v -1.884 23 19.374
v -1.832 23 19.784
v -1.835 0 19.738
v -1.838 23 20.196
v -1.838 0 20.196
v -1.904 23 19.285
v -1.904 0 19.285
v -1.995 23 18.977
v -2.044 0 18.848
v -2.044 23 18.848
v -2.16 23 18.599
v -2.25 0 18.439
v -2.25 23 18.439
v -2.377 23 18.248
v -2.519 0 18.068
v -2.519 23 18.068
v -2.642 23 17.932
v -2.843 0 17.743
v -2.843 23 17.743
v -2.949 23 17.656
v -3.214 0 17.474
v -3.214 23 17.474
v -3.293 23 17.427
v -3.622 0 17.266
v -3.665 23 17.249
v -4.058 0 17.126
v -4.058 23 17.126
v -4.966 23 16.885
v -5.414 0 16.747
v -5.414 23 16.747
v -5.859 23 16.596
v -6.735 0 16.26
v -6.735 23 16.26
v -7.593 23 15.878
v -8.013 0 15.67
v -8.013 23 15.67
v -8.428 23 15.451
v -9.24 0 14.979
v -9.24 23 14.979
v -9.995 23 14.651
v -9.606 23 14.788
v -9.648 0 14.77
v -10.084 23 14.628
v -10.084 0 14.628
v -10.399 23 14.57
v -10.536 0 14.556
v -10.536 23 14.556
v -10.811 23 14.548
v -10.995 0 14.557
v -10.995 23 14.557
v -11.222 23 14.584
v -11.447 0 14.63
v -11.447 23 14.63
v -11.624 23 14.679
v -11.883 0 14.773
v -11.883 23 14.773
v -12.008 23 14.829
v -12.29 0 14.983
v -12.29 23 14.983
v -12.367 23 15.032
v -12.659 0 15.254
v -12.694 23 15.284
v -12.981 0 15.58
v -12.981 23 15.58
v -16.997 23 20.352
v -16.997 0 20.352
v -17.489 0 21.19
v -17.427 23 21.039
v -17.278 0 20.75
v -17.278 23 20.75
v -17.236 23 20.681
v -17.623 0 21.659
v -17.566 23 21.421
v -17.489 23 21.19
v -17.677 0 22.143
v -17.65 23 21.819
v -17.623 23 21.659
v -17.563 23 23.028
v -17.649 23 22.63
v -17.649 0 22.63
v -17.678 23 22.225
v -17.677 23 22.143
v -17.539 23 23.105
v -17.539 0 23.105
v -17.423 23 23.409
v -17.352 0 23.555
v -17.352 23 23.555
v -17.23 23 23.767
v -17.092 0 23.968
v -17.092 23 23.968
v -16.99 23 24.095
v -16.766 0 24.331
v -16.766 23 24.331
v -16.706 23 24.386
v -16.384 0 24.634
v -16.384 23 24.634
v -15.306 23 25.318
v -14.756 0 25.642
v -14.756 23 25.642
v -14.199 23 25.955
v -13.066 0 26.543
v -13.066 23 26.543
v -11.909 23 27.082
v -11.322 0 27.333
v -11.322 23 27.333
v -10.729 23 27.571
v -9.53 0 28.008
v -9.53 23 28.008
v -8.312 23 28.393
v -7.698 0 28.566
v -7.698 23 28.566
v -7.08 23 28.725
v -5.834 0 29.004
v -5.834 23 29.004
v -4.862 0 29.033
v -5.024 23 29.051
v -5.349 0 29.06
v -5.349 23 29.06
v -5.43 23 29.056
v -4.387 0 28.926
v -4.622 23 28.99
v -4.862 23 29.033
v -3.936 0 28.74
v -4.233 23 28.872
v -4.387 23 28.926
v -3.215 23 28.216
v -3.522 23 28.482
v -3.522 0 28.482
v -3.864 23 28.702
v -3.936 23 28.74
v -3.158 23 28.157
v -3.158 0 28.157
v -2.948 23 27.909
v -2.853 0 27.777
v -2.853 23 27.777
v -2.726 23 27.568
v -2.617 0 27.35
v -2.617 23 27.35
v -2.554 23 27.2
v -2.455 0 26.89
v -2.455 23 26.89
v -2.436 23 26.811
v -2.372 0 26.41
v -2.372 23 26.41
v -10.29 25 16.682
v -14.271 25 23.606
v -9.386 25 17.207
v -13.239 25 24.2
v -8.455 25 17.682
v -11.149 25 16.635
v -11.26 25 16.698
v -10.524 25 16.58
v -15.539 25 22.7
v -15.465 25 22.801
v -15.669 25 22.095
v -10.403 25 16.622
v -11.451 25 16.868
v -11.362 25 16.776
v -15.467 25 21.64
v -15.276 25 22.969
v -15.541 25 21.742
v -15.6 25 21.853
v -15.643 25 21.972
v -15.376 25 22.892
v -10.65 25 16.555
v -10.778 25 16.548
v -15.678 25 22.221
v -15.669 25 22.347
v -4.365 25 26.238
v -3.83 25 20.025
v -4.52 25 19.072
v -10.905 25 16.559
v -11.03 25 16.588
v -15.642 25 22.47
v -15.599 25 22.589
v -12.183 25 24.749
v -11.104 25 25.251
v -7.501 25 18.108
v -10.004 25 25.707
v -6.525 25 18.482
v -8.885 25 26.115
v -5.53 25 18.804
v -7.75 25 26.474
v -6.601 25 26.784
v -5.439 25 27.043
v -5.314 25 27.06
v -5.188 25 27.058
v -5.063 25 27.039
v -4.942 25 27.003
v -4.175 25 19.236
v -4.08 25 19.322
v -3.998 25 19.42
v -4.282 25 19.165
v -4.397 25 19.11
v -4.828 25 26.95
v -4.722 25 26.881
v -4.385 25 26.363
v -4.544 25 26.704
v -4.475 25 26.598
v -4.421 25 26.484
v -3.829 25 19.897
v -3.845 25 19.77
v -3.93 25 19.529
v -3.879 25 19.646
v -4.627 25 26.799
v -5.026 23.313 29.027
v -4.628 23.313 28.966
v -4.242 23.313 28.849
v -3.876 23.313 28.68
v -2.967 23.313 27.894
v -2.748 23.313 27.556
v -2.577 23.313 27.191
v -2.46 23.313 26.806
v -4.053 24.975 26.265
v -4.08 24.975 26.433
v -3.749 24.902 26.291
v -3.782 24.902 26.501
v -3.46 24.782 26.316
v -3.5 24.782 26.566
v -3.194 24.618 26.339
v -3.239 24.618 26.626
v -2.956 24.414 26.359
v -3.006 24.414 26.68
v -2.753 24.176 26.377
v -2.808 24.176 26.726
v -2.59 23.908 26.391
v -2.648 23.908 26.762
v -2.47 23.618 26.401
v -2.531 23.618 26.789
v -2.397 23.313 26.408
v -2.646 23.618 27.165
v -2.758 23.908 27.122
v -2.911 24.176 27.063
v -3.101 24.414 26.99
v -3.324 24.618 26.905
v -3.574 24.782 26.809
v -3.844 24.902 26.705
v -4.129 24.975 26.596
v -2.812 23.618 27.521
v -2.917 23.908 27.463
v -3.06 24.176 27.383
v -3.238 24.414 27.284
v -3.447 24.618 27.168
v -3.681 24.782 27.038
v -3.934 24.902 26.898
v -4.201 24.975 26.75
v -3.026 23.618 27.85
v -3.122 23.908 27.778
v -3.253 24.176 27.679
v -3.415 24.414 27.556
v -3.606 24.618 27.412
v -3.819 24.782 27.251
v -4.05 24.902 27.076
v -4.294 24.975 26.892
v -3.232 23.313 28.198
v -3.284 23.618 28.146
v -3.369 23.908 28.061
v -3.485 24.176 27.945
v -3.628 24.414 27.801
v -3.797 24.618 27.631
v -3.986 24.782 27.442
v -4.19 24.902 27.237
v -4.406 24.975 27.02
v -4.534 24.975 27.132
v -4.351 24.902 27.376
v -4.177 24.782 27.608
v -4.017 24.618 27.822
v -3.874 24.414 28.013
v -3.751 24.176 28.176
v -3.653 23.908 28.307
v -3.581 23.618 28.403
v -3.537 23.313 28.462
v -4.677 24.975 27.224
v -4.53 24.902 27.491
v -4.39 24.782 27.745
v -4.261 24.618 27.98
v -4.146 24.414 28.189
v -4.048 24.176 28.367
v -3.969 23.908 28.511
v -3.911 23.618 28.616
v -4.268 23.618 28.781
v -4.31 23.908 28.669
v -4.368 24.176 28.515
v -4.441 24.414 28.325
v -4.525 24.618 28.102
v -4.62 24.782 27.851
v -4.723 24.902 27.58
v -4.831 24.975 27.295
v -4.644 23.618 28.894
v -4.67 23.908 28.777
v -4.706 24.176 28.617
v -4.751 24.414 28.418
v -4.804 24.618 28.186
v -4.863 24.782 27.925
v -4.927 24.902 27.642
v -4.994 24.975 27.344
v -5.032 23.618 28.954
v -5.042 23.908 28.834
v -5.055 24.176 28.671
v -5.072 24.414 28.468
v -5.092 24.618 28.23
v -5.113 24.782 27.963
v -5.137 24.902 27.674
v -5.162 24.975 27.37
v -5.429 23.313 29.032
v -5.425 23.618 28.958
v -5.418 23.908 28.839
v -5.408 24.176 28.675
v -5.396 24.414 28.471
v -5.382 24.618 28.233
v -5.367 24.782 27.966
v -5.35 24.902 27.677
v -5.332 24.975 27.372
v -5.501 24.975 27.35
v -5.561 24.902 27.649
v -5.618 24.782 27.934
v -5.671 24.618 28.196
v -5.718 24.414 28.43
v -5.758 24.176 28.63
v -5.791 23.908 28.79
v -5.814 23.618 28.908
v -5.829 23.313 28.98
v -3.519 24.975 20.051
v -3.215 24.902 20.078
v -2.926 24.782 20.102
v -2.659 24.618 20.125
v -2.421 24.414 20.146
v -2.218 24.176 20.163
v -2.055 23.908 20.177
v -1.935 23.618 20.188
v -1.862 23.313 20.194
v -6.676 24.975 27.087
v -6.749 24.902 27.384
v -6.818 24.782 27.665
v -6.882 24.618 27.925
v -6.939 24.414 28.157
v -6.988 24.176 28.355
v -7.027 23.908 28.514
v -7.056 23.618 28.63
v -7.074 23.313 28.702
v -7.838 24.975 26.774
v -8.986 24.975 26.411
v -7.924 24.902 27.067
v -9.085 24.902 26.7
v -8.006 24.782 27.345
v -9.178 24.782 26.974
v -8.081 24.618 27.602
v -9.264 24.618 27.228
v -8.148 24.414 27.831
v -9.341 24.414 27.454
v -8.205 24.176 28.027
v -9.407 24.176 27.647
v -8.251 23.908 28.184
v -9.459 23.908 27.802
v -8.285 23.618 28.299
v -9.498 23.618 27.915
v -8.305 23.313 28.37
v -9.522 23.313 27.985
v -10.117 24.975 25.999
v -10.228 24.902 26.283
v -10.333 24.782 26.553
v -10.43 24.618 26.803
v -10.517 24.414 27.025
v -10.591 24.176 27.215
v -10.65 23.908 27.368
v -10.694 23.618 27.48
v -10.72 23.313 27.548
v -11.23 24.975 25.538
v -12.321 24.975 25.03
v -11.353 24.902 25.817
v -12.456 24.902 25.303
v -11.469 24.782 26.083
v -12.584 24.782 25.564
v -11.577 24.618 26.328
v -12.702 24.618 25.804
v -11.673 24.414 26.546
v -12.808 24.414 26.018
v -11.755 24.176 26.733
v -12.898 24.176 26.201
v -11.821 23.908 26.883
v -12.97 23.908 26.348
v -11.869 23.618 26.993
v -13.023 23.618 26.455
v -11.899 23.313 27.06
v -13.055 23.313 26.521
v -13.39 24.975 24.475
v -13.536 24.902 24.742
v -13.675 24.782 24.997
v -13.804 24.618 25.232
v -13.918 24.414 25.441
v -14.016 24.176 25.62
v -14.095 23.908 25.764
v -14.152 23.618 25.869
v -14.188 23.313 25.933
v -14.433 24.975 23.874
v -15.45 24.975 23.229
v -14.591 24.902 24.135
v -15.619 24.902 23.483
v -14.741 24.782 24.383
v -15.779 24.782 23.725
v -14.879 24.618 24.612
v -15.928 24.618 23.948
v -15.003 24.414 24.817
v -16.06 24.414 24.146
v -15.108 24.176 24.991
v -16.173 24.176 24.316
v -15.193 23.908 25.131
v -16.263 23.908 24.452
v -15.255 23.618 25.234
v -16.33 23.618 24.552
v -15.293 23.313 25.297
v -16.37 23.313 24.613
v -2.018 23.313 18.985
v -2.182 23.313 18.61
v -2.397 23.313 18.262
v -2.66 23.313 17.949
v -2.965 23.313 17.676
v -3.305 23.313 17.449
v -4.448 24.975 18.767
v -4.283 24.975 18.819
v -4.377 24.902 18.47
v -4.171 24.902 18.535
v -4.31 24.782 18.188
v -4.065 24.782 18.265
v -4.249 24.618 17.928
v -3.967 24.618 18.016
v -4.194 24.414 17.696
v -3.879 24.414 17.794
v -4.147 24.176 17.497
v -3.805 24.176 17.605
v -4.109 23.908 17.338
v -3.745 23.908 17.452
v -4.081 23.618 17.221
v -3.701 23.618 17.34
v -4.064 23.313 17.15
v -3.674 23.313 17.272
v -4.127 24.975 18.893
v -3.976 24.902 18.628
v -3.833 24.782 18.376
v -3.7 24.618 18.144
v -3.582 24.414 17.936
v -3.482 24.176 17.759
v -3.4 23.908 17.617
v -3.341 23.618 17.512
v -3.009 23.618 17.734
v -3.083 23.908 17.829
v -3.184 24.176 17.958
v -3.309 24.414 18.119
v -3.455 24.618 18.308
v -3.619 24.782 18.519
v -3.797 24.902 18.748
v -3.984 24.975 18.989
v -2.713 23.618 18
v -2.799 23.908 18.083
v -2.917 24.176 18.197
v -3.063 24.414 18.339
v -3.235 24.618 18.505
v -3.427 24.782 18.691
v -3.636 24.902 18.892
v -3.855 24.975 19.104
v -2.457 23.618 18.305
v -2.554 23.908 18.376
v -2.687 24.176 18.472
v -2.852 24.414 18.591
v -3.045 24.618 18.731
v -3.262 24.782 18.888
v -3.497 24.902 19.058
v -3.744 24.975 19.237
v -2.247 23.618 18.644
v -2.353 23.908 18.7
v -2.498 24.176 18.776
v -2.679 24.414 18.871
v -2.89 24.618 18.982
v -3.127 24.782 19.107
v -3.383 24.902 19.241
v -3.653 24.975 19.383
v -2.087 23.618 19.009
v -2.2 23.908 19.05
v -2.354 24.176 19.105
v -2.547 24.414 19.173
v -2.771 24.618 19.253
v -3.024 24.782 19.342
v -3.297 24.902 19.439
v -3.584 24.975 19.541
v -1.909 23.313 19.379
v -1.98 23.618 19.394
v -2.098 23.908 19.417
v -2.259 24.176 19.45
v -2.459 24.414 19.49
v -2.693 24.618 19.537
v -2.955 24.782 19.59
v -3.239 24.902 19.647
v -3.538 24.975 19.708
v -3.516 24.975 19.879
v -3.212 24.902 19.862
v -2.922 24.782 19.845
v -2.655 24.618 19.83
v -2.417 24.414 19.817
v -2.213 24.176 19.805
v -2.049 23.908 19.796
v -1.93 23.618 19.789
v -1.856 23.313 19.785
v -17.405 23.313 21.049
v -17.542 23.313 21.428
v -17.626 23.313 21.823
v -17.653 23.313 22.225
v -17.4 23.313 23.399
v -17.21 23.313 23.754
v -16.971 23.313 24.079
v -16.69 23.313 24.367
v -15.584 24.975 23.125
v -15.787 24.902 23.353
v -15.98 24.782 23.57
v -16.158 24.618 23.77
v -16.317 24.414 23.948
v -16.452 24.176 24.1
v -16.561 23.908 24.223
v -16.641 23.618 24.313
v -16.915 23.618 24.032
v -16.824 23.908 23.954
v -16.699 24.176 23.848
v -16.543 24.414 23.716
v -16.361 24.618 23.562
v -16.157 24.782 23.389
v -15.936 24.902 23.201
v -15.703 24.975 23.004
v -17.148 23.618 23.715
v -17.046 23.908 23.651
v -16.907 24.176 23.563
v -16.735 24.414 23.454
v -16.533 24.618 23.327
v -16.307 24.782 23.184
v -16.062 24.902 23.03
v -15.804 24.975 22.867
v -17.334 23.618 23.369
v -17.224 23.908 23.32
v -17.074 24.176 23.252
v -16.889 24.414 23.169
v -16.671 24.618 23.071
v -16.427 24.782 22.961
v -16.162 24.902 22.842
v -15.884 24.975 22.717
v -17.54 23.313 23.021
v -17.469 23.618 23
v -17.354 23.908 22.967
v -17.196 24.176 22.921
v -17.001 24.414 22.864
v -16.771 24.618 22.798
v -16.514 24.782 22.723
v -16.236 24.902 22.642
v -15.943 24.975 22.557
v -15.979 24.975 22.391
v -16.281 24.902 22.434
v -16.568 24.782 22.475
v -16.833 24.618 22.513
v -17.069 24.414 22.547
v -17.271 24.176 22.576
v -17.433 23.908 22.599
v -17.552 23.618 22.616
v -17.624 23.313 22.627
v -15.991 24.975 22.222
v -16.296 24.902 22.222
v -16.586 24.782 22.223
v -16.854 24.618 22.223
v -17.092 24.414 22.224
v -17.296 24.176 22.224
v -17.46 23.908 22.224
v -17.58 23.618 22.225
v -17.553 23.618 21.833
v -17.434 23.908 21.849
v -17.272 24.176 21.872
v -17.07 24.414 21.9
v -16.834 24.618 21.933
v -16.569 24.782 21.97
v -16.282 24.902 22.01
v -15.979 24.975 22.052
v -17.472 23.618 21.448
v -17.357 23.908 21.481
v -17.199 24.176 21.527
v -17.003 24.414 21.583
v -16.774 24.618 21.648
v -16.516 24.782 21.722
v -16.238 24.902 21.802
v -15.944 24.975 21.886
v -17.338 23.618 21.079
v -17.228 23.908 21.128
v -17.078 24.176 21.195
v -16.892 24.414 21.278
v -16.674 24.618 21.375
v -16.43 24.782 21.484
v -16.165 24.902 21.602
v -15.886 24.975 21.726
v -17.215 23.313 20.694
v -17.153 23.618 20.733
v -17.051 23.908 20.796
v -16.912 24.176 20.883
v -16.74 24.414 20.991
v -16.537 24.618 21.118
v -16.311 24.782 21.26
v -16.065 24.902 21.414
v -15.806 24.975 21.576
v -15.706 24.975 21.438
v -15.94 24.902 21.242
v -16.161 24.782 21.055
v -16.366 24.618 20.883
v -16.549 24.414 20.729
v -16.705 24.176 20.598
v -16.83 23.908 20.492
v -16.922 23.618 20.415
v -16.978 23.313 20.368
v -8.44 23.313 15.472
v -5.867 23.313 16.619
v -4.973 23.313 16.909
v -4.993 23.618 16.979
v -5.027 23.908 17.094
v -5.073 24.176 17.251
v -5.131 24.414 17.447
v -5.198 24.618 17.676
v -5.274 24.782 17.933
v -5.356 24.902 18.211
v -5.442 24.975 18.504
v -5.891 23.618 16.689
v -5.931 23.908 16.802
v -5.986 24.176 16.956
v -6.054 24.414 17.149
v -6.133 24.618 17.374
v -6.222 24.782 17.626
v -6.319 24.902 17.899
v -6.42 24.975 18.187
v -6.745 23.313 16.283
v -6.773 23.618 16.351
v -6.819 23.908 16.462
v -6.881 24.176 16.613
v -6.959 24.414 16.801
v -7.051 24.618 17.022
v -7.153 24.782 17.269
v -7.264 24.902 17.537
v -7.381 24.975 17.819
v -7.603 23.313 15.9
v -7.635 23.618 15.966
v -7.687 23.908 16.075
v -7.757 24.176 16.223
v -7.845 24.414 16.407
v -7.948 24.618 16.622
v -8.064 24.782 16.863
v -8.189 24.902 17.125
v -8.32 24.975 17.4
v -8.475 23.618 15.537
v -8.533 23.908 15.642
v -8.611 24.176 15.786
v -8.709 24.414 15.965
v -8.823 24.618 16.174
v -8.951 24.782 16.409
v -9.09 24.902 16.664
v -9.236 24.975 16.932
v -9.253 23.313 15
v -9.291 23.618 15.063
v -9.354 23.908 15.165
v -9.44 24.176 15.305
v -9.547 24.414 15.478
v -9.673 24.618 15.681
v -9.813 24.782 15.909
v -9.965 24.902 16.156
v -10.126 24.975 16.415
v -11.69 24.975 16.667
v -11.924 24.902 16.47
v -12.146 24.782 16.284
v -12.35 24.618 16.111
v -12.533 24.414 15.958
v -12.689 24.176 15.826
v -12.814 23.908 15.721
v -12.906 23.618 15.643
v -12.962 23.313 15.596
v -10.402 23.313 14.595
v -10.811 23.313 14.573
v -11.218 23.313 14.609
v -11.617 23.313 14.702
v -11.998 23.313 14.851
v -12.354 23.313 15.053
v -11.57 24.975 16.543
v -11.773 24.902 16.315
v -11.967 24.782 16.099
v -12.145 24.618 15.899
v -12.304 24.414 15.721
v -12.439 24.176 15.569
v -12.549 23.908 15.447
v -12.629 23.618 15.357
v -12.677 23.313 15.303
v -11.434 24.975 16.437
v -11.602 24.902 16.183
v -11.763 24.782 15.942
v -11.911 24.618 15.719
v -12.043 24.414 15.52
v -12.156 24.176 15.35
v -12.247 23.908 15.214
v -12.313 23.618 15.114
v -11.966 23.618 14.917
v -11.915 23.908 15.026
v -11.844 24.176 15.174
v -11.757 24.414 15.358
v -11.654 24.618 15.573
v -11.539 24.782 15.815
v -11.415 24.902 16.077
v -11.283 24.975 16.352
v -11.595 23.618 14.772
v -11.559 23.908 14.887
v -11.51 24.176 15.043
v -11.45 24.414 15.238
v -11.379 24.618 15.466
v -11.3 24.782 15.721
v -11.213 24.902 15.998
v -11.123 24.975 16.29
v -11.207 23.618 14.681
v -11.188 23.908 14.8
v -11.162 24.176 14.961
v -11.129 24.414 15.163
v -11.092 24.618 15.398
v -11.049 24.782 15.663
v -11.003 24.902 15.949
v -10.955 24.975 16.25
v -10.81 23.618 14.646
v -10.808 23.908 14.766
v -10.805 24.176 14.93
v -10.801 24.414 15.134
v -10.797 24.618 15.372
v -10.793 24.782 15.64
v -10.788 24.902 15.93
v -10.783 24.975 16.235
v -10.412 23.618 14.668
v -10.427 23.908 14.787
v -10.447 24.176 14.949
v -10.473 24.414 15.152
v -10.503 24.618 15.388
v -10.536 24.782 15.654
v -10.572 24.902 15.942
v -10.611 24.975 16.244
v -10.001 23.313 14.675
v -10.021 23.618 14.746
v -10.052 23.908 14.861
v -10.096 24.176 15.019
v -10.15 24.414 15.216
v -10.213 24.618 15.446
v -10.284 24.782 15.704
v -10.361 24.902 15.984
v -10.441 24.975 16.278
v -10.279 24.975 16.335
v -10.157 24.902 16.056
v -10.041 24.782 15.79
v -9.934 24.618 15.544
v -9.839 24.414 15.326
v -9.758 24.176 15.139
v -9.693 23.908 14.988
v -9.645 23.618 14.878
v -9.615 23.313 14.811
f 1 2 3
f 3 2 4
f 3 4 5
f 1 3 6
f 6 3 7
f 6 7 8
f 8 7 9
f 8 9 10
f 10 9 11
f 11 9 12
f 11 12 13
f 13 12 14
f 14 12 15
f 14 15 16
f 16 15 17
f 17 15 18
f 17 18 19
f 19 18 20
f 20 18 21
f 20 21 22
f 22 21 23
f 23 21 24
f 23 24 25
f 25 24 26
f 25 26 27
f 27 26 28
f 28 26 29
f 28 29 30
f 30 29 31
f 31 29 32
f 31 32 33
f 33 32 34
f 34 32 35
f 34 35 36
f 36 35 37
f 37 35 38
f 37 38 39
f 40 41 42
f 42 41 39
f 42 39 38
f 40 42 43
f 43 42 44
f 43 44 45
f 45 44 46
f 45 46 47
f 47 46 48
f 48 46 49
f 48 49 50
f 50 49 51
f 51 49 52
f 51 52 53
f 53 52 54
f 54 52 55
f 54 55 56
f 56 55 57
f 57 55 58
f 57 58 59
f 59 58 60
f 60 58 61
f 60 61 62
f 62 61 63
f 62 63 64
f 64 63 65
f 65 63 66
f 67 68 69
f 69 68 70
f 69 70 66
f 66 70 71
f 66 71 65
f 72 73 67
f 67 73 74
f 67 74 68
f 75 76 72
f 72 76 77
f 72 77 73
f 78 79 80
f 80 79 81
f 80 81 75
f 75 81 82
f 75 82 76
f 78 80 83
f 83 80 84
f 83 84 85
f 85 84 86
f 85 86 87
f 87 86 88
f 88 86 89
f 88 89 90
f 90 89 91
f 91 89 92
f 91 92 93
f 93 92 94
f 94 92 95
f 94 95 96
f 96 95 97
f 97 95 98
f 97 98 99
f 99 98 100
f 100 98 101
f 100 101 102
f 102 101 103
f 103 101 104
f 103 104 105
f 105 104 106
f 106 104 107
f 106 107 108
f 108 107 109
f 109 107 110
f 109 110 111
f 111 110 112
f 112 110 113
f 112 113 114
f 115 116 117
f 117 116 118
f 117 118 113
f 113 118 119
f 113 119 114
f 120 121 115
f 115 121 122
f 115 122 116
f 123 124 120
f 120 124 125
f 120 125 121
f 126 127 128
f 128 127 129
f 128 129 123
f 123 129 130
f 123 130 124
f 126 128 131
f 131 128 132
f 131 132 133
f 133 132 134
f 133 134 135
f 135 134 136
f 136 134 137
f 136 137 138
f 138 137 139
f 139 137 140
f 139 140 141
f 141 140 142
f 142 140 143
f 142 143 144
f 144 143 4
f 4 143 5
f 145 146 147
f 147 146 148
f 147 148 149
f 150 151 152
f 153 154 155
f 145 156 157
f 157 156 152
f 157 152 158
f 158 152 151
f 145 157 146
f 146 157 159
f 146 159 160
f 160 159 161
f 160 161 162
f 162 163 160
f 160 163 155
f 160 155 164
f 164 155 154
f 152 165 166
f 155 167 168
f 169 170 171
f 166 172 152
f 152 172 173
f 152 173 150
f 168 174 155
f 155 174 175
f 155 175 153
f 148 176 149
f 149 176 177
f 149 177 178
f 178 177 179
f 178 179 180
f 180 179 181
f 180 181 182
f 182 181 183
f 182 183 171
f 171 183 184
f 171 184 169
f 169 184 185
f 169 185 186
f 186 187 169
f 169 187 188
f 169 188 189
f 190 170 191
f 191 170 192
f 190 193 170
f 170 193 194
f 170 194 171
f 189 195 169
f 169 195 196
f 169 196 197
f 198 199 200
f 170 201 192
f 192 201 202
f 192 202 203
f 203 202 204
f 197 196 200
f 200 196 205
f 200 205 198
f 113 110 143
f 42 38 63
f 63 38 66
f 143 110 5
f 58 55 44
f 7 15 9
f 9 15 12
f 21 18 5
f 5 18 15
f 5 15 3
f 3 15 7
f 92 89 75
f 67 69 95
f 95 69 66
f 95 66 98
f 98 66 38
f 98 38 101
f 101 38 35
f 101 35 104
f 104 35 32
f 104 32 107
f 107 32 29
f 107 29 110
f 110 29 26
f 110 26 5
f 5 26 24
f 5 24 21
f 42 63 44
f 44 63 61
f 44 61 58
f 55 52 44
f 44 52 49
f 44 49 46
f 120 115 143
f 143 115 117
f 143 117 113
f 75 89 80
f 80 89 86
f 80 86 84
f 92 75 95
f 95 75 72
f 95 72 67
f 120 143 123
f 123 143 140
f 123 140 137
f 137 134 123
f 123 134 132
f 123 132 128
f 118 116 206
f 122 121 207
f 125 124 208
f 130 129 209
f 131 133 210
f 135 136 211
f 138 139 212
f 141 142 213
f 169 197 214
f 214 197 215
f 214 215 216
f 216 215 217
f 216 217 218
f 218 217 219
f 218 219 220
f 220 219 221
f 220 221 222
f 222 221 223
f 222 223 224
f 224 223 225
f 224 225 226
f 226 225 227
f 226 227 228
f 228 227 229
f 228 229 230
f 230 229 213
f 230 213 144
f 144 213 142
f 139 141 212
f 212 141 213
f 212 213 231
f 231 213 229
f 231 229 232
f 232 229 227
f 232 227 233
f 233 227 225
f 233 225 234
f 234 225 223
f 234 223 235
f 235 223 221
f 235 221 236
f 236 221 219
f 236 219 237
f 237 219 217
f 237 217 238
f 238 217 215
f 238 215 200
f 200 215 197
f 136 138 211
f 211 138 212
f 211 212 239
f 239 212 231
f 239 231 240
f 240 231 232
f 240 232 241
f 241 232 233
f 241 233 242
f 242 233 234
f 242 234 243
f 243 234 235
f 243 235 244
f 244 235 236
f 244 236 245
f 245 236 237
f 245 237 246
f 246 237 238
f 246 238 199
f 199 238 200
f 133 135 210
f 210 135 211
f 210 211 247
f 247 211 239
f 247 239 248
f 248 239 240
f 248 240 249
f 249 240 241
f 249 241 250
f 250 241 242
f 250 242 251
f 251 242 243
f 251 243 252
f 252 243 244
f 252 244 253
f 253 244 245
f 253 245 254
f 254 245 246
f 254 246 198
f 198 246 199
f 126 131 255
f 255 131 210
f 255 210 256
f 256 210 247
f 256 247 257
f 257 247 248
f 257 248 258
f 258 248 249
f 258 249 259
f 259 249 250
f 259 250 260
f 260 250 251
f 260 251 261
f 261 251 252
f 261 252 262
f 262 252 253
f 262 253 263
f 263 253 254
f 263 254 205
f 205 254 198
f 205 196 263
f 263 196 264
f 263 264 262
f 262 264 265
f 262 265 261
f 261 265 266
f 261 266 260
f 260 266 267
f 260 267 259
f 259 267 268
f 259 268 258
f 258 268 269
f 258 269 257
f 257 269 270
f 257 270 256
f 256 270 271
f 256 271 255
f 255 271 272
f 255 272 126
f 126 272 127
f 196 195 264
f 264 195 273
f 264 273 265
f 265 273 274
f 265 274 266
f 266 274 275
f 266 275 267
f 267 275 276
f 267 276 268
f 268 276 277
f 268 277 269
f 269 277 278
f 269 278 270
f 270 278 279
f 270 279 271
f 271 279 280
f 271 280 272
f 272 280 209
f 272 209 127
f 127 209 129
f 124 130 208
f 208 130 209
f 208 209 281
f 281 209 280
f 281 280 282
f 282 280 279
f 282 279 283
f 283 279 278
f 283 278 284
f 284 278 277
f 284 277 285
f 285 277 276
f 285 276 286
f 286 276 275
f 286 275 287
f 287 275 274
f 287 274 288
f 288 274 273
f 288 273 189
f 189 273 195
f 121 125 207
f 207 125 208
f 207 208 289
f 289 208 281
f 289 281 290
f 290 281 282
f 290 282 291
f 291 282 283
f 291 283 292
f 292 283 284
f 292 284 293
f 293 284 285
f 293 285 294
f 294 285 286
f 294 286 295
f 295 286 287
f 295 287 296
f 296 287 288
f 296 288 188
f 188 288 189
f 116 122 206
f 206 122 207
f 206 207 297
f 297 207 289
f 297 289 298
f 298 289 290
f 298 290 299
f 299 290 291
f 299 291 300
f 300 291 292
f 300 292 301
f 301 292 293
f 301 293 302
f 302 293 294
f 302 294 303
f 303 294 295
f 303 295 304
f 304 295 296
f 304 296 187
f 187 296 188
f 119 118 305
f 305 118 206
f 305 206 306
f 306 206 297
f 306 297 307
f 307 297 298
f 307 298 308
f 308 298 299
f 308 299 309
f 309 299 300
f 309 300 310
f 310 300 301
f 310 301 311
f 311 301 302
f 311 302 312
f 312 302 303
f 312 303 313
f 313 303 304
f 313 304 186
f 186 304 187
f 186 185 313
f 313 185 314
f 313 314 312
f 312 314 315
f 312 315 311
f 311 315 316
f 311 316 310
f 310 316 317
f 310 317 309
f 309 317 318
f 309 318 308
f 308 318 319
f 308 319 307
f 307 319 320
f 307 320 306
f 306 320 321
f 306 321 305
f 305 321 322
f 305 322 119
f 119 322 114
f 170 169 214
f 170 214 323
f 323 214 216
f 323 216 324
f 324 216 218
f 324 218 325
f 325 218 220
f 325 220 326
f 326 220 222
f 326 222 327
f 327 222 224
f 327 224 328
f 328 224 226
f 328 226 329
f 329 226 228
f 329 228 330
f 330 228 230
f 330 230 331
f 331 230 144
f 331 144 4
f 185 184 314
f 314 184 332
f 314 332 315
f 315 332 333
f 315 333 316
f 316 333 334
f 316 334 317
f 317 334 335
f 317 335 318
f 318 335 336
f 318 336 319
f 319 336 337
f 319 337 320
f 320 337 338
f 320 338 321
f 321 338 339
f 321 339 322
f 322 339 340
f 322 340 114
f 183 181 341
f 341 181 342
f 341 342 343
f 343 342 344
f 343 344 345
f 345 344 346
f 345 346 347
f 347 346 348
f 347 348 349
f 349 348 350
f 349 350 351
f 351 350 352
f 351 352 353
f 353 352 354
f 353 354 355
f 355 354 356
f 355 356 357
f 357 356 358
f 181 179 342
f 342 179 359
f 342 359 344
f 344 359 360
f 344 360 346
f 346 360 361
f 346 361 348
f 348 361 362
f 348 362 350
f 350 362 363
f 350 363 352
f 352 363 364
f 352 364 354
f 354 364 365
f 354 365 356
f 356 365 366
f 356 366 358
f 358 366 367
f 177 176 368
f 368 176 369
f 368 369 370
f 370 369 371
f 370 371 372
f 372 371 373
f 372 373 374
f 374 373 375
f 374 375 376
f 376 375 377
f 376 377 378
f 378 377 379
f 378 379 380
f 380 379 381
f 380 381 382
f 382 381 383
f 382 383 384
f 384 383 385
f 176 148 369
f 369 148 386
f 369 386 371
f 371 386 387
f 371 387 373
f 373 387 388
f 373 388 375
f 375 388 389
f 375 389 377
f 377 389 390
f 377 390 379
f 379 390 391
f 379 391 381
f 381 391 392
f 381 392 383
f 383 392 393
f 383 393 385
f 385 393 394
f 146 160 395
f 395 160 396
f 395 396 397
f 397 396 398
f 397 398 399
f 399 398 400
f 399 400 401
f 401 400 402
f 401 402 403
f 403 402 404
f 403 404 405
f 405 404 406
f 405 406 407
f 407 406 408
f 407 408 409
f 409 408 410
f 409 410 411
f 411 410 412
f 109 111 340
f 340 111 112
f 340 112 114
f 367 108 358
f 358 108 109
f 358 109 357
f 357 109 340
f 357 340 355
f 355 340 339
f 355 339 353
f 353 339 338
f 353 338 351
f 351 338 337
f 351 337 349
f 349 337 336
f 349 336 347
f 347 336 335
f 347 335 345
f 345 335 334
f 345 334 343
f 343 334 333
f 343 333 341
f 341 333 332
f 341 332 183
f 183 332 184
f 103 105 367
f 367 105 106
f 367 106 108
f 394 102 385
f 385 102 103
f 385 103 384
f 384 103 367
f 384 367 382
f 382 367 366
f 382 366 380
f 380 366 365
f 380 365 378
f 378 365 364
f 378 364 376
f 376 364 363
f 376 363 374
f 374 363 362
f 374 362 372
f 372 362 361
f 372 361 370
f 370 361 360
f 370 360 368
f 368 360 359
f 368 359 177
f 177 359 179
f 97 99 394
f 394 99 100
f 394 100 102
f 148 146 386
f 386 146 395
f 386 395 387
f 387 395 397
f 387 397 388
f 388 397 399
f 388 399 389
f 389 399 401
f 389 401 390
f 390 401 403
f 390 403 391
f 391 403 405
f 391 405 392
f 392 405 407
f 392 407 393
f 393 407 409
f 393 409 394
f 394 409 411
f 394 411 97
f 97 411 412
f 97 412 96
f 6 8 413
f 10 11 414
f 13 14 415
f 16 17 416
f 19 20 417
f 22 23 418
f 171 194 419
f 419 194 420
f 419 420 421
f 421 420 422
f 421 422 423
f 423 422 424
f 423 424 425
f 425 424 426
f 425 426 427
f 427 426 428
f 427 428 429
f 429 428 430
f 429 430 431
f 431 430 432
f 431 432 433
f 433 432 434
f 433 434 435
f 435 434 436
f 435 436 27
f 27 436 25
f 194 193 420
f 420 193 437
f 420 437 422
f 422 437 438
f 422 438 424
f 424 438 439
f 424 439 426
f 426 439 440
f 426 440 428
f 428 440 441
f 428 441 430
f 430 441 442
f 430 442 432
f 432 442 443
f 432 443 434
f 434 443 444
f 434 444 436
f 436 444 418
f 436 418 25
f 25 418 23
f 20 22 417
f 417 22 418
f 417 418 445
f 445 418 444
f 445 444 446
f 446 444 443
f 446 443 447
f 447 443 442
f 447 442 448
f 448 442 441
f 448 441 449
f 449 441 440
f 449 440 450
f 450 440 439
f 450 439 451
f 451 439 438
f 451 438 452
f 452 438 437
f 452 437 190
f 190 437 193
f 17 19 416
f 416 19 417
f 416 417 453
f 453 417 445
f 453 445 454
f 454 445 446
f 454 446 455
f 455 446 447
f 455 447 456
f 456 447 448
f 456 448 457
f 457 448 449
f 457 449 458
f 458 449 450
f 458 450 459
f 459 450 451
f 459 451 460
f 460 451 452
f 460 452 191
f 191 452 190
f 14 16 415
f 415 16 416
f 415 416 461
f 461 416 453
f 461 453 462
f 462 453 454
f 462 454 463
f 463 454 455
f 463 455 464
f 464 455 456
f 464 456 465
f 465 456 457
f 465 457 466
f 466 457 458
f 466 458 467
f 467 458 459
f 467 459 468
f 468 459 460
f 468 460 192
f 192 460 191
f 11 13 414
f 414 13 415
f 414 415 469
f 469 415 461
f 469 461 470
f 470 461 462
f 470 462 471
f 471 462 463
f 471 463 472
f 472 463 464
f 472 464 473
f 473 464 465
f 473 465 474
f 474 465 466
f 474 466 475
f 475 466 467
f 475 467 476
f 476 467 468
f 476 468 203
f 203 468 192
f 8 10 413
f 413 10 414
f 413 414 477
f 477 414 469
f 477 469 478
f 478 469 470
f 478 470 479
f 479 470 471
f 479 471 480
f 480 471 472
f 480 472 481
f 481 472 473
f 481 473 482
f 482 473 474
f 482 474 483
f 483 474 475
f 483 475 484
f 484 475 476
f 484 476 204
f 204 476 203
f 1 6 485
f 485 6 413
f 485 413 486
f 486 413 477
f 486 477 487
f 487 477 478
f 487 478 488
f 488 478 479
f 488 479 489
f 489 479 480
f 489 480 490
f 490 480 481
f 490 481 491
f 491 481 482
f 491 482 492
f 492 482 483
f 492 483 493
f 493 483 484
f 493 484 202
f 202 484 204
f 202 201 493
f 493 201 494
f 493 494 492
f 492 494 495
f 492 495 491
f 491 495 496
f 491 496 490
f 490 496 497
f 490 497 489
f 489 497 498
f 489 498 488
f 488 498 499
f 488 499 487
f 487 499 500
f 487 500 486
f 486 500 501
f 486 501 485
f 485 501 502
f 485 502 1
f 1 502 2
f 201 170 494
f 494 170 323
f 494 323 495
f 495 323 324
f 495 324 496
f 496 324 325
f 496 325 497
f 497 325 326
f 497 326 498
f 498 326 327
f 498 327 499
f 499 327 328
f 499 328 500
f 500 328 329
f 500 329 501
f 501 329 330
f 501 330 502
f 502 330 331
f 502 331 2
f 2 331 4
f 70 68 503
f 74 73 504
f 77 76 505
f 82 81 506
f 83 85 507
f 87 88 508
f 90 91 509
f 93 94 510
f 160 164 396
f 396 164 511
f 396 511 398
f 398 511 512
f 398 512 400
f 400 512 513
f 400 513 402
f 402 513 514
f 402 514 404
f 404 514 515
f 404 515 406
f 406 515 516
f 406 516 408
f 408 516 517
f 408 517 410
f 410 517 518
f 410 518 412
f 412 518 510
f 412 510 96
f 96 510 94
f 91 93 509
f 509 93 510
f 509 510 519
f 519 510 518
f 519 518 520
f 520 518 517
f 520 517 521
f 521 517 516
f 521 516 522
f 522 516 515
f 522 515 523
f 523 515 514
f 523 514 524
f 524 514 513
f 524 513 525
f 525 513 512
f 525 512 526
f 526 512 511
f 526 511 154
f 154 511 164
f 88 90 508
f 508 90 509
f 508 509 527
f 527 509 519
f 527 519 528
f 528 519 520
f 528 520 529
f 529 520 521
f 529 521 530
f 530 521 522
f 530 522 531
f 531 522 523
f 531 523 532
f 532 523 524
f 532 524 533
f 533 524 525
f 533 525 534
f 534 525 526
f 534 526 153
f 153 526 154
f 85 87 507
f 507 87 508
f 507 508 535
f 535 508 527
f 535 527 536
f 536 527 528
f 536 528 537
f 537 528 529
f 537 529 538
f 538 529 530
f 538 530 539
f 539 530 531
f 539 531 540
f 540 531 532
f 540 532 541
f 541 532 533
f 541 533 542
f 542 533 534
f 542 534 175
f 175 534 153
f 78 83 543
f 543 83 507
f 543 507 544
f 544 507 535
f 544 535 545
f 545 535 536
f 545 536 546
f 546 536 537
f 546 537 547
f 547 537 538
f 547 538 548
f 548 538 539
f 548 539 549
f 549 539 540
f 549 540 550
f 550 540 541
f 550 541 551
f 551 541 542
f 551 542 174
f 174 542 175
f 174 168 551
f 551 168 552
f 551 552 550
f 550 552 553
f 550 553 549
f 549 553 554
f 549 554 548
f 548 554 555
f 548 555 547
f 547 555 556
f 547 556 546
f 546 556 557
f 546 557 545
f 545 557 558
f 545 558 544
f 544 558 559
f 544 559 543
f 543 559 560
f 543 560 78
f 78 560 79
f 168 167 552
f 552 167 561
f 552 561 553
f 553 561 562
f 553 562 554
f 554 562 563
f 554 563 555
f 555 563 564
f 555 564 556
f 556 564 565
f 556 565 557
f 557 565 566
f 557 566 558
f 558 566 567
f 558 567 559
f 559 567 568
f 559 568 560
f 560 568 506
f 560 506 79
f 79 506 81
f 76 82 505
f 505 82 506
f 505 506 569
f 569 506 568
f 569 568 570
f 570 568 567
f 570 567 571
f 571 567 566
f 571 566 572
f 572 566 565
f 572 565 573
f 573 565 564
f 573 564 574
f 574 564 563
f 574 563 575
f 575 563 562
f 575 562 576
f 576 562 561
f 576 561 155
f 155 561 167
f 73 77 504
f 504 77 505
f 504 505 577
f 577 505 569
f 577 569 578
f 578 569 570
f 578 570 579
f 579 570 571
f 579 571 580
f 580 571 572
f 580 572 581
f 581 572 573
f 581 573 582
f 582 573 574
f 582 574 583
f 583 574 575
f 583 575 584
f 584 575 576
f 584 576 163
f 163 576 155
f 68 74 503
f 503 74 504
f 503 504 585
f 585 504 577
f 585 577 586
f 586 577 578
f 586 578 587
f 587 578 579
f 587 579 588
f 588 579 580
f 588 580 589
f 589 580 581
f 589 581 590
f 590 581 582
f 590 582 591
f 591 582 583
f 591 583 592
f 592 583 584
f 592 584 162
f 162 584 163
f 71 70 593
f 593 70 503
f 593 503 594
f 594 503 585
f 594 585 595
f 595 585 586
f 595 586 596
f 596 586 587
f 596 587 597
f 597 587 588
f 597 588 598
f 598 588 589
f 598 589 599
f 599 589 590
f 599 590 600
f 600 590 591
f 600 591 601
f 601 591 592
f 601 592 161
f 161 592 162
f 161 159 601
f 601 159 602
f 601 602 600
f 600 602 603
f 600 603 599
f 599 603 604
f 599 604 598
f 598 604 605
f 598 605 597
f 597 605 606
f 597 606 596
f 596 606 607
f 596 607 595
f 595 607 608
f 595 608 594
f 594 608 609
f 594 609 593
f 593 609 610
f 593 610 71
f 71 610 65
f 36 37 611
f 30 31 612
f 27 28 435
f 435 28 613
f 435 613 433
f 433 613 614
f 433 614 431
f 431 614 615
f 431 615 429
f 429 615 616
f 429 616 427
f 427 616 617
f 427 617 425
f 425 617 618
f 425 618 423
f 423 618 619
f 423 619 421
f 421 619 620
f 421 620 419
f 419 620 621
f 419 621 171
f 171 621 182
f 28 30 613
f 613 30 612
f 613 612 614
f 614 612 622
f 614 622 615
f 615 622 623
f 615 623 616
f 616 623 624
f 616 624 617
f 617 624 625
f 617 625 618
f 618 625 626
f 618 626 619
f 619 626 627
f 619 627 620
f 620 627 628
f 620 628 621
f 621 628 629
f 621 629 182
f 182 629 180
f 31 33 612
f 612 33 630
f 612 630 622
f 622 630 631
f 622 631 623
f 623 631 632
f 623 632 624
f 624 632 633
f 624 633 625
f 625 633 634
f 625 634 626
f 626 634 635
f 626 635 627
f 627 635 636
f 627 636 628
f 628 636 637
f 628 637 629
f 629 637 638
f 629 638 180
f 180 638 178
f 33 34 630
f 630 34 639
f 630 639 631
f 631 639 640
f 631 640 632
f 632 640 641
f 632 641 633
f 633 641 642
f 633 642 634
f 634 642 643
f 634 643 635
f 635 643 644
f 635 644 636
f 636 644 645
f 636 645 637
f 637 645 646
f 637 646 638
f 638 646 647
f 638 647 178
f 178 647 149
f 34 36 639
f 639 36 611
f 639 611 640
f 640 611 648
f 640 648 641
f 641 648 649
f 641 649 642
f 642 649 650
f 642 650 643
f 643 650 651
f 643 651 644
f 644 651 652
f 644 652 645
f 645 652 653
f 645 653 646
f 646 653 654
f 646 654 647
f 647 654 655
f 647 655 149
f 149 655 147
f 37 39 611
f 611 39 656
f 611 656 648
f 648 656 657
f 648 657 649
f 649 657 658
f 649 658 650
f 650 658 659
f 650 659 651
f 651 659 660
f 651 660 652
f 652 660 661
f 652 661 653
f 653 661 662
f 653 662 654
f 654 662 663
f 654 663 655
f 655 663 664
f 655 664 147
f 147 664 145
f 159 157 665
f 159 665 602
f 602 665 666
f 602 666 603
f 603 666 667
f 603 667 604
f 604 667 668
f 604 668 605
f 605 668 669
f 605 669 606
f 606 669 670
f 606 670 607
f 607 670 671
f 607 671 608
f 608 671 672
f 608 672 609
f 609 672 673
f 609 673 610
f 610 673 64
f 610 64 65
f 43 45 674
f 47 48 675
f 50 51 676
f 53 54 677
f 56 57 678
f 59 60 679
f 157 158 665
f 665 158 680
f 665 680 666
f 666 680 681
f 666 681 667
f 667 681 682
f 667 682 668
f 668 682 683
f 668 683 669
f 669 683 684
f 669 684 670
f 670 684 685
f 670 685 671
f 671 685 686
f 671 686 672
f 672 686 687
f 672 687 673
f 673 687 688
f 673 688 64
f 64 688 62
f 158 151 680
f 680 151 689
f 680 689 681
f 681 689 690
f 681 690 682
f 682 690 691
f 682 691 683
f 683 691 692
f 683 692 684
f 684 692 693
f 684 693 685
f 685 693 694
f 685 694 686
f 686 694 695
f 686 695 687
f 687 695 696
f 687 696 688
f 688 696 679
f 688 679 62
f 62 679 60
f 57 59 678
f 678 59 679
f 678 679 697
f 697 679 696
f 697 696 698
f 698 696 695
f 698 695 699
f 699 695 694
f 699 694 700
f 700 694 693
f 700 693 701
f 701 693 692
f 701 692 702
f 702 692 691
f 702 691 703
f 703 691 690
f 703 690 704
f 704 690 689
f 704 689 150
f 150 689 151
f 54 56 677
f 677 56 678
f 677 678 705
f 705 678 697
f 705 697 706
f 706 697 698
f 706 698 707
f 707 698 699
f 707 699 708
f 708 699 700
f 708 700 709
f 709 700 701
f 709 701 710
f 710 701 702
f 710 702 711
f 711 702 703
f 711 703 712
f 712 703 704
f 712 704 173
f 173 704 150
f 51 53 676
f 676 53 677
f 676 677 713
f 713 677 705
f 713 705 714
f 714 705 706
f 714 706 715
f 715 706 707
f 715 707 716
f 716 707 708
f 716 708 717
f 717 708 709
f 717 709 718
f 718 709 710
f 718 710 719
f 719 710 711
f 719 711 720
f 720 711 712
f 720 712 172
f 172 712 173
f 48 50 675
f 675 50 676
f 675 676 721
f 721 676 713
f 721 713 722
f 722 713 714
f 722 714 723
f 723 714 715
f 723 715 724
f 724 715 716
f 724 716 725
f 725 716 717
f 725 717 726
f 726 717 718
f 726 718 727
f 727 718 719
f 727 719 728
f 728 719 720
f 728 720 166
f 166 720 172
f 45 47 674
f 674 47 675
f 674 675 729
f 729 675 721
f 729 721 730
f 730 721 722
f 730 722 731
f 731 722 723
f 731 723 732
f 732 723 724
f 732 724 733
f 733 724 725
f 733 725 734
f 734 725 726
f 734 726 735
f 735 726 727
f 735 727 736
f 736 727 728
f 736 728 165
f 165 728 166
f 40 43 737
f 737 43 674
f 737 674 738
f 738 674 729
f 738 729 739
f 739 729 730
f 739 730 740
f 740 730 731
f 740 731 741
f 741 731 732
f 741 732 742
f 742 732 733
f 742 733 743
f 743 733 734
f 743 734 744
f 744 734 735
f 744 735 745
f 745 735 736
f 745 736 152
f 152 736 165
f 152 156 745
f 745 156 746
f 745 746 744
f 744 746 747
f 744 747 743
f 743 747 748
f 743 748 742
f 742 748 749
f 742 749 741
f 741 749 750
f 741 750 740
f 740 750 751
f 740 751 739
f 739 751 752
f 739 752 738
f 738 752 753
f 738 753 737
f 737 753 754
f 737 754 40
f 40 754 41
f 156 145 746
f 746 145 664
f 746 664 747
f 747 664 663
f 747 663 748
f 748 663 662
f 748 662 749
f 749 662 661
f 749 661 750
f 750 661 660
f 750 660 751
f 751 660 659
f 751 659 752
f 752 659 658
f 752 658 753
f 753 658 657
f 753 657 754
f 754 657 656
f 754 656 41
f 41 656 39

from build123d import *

# Parameters (mm, degrees)
BOSS_EXTRUDE1_DEPTH = 25
FILLET1_R           = 2


with BuildPart() as part:
    # Sketch1 → Boss-Extrude1 (new body)
    with BuildSketch(Plane(origin=(0, 0, 0), x_dir=(-1, 0, 0), z_dir=(0, 1, 0))):
        with BuildLine():
            Line((1.837857672, 20.196095642), (2.372417379, 26.409673621))
            ThreePointArc((2.372417379, 26.409673621), (3.522331642, 28.481542299), (5.833566285, 29.004167449))
            ThreePointArc((5.833566285, 29.004167449), (11.321689347, 27.332975969), (16.384089207, 24.633997765))
            ThreePointArc((16.384089207, 24.633997765), (17.648827109, 22.630156287), (16.99690689, 20.352011723))
            Line((16.99690689, 20.352011723), (12.981234559, 15.580357805))
            ThreePointArc((12.981234559, 15.580357805), (11.222292108, 14.584351213), (9.239918516, 14.97944945))
            ThreePointArc((9.239918516, 14.97944945), (6.73522841, 16.260279772), (4.058461244, 17.125679325))
            ThreePointArc((4.058461244, 17.125679325), (2.377334792, 18.248052492), (1.837857672, 20.196095642))
        make_face()
    extrude(amount=BOSS_EXTRUDE1_DEPTH)

    # Fillet1
    fillet1_edges = [part.edges().sort_by_distance(p)[0] for p in [
        (-11.222292108, 25, 14.584351213),
        (-14.989070724, 25, 17.966184764),
        (-17.648827109, 25, 22.630156287),
        (-11.321689347, 25, 27.332975969),
        (-3.522331642, 25, 28.481542299),
        (-2.105137526, 25, 23.302884632),
        (-2.377334792, 25, 18.248052492),
        (-6.73522841, 25, 16.260279772),
    ]]
    fillet(fillet1_edges, radius=FILLET1_R)


solid = part.part
